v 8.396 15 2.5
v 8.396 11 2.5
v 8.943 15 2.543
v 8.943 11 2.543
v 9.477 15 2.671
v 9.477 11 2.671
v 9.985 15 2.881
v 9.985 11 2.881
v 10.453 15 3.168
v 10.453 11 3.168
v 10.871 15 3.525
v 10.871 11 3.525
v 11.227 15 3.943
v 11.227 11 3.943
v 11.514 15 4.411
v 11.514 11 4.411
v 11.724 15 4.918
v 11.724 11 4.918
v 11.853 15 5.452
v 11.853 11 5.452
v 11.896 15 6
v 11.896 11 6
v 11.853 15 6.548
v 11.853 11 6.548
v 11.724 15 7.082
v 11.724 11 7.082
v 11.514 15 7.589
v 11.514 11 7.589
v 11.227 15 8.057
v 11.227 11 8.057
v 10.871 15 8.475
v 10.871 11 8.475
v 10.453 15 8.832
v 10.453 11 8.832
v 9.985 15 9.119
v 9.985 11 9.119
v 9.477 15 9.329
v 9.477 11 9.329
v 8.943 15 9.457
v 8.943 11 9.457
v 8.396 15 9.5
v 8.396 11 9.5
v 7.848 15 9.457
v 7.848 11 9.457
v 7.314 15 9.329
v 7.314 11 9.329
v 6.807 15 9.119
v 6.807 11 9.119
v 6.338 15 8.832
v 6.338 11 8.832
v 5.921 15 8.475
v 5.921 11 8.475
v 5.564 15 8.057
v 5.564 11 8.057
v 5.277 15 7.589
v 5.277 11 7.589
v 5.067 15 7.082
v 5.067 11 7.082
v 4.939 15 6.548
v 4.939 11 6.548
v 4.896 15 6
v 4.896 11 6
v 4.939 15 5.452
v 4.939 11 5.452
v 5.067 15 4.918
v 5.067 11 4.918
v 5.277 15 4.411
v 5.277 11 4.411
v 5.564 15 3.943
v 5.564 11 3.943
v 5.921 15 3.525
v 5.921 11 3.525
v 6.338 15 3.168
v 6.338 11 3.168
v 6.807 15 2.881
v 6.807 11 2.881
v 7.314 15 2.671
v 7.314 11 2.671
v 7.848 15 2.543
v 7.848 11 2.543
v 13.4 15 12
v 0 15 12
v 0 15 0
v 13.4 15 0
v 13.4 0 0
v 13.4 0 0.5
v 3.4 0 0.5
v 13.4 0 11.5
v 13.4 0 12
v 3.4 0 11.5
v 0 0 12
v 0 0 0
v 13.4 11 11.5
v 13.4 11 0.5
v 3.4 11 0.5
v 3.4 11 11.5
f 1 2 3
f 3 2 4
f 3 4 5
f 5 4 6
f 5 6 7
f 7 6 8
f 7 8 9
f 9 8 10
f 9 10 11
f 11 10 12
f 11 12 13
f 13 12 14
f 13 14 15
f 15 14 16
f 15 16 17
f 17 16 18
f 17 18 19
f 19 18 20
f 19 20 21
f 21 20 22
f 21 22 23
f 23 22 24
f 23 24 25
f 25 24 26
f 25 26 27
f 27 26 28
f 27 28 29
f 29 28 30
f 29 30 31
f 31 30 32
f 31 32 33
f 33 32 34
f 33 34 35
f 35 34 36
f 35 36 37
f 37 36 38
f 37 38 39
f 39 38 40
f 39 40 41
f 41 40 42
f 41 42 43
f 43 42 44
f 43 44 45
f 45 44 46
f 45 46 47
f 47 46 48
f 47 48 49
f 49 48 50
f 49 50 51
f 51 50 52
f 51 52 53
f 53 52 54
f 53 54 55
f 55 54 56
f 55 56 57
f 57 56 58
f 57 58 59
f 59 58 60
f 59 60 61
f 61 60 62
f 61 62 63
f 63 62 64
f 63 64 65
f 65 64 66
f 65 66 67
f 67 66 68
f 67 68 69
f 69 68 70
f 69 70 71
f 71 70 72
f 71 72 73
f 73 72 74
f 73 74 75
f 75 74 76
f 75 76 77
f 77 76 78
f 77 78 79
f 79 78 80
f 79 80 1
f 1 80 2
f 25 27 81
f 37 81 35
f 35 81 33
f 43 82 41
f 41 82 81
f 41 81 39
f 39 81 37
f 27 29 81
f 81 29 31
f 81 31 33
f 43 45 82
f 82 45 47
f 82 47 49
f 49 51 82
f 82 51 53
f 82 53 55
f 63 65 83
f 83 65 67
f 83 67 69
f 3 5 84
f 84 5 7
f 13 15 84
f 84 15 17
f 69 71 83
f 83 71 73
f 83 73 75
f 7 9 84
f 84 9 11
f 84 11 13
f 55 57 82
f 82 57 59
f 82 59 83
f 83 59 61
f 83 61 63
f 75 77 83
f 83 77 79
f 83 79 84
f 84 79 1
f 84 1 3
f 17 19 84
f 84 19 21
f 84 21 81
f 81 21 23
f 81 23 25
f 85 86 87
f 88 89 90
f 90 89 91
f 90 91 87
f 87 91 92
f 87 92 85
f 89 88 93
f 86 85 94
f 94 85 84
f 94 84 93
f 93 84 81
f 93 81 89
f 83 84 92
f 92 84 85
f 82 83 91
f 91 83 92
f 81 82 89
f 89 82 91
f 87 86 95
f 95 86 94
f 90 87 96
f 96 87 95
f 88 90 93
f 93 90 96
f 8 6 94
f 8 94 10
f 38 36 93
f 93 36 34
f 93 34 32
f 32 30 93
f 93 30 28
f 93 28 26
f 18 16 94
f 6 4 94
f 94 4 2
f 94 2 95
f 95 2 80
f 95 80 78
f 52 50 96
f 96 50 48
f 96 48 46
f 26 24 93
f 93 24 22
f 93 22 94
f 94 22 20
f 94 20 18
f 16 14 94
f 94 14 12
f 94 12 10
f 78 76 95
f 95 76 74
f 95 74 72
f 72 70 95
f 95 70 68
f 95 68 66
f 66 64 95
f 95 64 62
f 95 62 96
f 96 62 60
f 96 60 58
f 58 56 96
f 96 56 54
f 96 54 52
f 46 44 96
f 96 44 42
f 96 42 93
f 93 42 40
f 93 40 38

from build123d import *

# Parameters (mm, degrees)
SKETCH_2_W          = 13.4
SKETCH_2_H          = 12
SKETCH_2_R          = 3.5
EXTRUDE_2_DEPTH     = 15
SKETCH_3_W          = 10
SKETCH_3_H          = 11
CUT_EXTRUDE_1_DEPTH = 11


with BuildPart() as part:
    # 草图2 → 凸台-拉伸2 (new body)
    with BuildSketch(Plane(origin=(0, 0, 0), x_dir=(1, 0, 0), z_dir=(0, 1, 0))):
        with Locations((6.7, -6)):
            Rectangle(SKETCH_2_W, SKETCH_2_H)
        with Locations(Location((8.395740059, -6, 0), (0, 0, 270))):
            Circle(SKETCH_2_R, mode=Mode.SUBTRACT)
    extrude(amount=EXTRUDE_2_DEPTH)

    # 草图3 → 切除-拉伸1 (cut)
    with BuildSketch(Plane.XZ):
        with Locations((8.4, 6)):
            Rectangle(SKETCH_3_W, SKETCH_3_H)
    extrude(amount=-CUT_EXTRUDE_1_DEPTH, mode=Mode.SUBTRACT)


solid = part.part
